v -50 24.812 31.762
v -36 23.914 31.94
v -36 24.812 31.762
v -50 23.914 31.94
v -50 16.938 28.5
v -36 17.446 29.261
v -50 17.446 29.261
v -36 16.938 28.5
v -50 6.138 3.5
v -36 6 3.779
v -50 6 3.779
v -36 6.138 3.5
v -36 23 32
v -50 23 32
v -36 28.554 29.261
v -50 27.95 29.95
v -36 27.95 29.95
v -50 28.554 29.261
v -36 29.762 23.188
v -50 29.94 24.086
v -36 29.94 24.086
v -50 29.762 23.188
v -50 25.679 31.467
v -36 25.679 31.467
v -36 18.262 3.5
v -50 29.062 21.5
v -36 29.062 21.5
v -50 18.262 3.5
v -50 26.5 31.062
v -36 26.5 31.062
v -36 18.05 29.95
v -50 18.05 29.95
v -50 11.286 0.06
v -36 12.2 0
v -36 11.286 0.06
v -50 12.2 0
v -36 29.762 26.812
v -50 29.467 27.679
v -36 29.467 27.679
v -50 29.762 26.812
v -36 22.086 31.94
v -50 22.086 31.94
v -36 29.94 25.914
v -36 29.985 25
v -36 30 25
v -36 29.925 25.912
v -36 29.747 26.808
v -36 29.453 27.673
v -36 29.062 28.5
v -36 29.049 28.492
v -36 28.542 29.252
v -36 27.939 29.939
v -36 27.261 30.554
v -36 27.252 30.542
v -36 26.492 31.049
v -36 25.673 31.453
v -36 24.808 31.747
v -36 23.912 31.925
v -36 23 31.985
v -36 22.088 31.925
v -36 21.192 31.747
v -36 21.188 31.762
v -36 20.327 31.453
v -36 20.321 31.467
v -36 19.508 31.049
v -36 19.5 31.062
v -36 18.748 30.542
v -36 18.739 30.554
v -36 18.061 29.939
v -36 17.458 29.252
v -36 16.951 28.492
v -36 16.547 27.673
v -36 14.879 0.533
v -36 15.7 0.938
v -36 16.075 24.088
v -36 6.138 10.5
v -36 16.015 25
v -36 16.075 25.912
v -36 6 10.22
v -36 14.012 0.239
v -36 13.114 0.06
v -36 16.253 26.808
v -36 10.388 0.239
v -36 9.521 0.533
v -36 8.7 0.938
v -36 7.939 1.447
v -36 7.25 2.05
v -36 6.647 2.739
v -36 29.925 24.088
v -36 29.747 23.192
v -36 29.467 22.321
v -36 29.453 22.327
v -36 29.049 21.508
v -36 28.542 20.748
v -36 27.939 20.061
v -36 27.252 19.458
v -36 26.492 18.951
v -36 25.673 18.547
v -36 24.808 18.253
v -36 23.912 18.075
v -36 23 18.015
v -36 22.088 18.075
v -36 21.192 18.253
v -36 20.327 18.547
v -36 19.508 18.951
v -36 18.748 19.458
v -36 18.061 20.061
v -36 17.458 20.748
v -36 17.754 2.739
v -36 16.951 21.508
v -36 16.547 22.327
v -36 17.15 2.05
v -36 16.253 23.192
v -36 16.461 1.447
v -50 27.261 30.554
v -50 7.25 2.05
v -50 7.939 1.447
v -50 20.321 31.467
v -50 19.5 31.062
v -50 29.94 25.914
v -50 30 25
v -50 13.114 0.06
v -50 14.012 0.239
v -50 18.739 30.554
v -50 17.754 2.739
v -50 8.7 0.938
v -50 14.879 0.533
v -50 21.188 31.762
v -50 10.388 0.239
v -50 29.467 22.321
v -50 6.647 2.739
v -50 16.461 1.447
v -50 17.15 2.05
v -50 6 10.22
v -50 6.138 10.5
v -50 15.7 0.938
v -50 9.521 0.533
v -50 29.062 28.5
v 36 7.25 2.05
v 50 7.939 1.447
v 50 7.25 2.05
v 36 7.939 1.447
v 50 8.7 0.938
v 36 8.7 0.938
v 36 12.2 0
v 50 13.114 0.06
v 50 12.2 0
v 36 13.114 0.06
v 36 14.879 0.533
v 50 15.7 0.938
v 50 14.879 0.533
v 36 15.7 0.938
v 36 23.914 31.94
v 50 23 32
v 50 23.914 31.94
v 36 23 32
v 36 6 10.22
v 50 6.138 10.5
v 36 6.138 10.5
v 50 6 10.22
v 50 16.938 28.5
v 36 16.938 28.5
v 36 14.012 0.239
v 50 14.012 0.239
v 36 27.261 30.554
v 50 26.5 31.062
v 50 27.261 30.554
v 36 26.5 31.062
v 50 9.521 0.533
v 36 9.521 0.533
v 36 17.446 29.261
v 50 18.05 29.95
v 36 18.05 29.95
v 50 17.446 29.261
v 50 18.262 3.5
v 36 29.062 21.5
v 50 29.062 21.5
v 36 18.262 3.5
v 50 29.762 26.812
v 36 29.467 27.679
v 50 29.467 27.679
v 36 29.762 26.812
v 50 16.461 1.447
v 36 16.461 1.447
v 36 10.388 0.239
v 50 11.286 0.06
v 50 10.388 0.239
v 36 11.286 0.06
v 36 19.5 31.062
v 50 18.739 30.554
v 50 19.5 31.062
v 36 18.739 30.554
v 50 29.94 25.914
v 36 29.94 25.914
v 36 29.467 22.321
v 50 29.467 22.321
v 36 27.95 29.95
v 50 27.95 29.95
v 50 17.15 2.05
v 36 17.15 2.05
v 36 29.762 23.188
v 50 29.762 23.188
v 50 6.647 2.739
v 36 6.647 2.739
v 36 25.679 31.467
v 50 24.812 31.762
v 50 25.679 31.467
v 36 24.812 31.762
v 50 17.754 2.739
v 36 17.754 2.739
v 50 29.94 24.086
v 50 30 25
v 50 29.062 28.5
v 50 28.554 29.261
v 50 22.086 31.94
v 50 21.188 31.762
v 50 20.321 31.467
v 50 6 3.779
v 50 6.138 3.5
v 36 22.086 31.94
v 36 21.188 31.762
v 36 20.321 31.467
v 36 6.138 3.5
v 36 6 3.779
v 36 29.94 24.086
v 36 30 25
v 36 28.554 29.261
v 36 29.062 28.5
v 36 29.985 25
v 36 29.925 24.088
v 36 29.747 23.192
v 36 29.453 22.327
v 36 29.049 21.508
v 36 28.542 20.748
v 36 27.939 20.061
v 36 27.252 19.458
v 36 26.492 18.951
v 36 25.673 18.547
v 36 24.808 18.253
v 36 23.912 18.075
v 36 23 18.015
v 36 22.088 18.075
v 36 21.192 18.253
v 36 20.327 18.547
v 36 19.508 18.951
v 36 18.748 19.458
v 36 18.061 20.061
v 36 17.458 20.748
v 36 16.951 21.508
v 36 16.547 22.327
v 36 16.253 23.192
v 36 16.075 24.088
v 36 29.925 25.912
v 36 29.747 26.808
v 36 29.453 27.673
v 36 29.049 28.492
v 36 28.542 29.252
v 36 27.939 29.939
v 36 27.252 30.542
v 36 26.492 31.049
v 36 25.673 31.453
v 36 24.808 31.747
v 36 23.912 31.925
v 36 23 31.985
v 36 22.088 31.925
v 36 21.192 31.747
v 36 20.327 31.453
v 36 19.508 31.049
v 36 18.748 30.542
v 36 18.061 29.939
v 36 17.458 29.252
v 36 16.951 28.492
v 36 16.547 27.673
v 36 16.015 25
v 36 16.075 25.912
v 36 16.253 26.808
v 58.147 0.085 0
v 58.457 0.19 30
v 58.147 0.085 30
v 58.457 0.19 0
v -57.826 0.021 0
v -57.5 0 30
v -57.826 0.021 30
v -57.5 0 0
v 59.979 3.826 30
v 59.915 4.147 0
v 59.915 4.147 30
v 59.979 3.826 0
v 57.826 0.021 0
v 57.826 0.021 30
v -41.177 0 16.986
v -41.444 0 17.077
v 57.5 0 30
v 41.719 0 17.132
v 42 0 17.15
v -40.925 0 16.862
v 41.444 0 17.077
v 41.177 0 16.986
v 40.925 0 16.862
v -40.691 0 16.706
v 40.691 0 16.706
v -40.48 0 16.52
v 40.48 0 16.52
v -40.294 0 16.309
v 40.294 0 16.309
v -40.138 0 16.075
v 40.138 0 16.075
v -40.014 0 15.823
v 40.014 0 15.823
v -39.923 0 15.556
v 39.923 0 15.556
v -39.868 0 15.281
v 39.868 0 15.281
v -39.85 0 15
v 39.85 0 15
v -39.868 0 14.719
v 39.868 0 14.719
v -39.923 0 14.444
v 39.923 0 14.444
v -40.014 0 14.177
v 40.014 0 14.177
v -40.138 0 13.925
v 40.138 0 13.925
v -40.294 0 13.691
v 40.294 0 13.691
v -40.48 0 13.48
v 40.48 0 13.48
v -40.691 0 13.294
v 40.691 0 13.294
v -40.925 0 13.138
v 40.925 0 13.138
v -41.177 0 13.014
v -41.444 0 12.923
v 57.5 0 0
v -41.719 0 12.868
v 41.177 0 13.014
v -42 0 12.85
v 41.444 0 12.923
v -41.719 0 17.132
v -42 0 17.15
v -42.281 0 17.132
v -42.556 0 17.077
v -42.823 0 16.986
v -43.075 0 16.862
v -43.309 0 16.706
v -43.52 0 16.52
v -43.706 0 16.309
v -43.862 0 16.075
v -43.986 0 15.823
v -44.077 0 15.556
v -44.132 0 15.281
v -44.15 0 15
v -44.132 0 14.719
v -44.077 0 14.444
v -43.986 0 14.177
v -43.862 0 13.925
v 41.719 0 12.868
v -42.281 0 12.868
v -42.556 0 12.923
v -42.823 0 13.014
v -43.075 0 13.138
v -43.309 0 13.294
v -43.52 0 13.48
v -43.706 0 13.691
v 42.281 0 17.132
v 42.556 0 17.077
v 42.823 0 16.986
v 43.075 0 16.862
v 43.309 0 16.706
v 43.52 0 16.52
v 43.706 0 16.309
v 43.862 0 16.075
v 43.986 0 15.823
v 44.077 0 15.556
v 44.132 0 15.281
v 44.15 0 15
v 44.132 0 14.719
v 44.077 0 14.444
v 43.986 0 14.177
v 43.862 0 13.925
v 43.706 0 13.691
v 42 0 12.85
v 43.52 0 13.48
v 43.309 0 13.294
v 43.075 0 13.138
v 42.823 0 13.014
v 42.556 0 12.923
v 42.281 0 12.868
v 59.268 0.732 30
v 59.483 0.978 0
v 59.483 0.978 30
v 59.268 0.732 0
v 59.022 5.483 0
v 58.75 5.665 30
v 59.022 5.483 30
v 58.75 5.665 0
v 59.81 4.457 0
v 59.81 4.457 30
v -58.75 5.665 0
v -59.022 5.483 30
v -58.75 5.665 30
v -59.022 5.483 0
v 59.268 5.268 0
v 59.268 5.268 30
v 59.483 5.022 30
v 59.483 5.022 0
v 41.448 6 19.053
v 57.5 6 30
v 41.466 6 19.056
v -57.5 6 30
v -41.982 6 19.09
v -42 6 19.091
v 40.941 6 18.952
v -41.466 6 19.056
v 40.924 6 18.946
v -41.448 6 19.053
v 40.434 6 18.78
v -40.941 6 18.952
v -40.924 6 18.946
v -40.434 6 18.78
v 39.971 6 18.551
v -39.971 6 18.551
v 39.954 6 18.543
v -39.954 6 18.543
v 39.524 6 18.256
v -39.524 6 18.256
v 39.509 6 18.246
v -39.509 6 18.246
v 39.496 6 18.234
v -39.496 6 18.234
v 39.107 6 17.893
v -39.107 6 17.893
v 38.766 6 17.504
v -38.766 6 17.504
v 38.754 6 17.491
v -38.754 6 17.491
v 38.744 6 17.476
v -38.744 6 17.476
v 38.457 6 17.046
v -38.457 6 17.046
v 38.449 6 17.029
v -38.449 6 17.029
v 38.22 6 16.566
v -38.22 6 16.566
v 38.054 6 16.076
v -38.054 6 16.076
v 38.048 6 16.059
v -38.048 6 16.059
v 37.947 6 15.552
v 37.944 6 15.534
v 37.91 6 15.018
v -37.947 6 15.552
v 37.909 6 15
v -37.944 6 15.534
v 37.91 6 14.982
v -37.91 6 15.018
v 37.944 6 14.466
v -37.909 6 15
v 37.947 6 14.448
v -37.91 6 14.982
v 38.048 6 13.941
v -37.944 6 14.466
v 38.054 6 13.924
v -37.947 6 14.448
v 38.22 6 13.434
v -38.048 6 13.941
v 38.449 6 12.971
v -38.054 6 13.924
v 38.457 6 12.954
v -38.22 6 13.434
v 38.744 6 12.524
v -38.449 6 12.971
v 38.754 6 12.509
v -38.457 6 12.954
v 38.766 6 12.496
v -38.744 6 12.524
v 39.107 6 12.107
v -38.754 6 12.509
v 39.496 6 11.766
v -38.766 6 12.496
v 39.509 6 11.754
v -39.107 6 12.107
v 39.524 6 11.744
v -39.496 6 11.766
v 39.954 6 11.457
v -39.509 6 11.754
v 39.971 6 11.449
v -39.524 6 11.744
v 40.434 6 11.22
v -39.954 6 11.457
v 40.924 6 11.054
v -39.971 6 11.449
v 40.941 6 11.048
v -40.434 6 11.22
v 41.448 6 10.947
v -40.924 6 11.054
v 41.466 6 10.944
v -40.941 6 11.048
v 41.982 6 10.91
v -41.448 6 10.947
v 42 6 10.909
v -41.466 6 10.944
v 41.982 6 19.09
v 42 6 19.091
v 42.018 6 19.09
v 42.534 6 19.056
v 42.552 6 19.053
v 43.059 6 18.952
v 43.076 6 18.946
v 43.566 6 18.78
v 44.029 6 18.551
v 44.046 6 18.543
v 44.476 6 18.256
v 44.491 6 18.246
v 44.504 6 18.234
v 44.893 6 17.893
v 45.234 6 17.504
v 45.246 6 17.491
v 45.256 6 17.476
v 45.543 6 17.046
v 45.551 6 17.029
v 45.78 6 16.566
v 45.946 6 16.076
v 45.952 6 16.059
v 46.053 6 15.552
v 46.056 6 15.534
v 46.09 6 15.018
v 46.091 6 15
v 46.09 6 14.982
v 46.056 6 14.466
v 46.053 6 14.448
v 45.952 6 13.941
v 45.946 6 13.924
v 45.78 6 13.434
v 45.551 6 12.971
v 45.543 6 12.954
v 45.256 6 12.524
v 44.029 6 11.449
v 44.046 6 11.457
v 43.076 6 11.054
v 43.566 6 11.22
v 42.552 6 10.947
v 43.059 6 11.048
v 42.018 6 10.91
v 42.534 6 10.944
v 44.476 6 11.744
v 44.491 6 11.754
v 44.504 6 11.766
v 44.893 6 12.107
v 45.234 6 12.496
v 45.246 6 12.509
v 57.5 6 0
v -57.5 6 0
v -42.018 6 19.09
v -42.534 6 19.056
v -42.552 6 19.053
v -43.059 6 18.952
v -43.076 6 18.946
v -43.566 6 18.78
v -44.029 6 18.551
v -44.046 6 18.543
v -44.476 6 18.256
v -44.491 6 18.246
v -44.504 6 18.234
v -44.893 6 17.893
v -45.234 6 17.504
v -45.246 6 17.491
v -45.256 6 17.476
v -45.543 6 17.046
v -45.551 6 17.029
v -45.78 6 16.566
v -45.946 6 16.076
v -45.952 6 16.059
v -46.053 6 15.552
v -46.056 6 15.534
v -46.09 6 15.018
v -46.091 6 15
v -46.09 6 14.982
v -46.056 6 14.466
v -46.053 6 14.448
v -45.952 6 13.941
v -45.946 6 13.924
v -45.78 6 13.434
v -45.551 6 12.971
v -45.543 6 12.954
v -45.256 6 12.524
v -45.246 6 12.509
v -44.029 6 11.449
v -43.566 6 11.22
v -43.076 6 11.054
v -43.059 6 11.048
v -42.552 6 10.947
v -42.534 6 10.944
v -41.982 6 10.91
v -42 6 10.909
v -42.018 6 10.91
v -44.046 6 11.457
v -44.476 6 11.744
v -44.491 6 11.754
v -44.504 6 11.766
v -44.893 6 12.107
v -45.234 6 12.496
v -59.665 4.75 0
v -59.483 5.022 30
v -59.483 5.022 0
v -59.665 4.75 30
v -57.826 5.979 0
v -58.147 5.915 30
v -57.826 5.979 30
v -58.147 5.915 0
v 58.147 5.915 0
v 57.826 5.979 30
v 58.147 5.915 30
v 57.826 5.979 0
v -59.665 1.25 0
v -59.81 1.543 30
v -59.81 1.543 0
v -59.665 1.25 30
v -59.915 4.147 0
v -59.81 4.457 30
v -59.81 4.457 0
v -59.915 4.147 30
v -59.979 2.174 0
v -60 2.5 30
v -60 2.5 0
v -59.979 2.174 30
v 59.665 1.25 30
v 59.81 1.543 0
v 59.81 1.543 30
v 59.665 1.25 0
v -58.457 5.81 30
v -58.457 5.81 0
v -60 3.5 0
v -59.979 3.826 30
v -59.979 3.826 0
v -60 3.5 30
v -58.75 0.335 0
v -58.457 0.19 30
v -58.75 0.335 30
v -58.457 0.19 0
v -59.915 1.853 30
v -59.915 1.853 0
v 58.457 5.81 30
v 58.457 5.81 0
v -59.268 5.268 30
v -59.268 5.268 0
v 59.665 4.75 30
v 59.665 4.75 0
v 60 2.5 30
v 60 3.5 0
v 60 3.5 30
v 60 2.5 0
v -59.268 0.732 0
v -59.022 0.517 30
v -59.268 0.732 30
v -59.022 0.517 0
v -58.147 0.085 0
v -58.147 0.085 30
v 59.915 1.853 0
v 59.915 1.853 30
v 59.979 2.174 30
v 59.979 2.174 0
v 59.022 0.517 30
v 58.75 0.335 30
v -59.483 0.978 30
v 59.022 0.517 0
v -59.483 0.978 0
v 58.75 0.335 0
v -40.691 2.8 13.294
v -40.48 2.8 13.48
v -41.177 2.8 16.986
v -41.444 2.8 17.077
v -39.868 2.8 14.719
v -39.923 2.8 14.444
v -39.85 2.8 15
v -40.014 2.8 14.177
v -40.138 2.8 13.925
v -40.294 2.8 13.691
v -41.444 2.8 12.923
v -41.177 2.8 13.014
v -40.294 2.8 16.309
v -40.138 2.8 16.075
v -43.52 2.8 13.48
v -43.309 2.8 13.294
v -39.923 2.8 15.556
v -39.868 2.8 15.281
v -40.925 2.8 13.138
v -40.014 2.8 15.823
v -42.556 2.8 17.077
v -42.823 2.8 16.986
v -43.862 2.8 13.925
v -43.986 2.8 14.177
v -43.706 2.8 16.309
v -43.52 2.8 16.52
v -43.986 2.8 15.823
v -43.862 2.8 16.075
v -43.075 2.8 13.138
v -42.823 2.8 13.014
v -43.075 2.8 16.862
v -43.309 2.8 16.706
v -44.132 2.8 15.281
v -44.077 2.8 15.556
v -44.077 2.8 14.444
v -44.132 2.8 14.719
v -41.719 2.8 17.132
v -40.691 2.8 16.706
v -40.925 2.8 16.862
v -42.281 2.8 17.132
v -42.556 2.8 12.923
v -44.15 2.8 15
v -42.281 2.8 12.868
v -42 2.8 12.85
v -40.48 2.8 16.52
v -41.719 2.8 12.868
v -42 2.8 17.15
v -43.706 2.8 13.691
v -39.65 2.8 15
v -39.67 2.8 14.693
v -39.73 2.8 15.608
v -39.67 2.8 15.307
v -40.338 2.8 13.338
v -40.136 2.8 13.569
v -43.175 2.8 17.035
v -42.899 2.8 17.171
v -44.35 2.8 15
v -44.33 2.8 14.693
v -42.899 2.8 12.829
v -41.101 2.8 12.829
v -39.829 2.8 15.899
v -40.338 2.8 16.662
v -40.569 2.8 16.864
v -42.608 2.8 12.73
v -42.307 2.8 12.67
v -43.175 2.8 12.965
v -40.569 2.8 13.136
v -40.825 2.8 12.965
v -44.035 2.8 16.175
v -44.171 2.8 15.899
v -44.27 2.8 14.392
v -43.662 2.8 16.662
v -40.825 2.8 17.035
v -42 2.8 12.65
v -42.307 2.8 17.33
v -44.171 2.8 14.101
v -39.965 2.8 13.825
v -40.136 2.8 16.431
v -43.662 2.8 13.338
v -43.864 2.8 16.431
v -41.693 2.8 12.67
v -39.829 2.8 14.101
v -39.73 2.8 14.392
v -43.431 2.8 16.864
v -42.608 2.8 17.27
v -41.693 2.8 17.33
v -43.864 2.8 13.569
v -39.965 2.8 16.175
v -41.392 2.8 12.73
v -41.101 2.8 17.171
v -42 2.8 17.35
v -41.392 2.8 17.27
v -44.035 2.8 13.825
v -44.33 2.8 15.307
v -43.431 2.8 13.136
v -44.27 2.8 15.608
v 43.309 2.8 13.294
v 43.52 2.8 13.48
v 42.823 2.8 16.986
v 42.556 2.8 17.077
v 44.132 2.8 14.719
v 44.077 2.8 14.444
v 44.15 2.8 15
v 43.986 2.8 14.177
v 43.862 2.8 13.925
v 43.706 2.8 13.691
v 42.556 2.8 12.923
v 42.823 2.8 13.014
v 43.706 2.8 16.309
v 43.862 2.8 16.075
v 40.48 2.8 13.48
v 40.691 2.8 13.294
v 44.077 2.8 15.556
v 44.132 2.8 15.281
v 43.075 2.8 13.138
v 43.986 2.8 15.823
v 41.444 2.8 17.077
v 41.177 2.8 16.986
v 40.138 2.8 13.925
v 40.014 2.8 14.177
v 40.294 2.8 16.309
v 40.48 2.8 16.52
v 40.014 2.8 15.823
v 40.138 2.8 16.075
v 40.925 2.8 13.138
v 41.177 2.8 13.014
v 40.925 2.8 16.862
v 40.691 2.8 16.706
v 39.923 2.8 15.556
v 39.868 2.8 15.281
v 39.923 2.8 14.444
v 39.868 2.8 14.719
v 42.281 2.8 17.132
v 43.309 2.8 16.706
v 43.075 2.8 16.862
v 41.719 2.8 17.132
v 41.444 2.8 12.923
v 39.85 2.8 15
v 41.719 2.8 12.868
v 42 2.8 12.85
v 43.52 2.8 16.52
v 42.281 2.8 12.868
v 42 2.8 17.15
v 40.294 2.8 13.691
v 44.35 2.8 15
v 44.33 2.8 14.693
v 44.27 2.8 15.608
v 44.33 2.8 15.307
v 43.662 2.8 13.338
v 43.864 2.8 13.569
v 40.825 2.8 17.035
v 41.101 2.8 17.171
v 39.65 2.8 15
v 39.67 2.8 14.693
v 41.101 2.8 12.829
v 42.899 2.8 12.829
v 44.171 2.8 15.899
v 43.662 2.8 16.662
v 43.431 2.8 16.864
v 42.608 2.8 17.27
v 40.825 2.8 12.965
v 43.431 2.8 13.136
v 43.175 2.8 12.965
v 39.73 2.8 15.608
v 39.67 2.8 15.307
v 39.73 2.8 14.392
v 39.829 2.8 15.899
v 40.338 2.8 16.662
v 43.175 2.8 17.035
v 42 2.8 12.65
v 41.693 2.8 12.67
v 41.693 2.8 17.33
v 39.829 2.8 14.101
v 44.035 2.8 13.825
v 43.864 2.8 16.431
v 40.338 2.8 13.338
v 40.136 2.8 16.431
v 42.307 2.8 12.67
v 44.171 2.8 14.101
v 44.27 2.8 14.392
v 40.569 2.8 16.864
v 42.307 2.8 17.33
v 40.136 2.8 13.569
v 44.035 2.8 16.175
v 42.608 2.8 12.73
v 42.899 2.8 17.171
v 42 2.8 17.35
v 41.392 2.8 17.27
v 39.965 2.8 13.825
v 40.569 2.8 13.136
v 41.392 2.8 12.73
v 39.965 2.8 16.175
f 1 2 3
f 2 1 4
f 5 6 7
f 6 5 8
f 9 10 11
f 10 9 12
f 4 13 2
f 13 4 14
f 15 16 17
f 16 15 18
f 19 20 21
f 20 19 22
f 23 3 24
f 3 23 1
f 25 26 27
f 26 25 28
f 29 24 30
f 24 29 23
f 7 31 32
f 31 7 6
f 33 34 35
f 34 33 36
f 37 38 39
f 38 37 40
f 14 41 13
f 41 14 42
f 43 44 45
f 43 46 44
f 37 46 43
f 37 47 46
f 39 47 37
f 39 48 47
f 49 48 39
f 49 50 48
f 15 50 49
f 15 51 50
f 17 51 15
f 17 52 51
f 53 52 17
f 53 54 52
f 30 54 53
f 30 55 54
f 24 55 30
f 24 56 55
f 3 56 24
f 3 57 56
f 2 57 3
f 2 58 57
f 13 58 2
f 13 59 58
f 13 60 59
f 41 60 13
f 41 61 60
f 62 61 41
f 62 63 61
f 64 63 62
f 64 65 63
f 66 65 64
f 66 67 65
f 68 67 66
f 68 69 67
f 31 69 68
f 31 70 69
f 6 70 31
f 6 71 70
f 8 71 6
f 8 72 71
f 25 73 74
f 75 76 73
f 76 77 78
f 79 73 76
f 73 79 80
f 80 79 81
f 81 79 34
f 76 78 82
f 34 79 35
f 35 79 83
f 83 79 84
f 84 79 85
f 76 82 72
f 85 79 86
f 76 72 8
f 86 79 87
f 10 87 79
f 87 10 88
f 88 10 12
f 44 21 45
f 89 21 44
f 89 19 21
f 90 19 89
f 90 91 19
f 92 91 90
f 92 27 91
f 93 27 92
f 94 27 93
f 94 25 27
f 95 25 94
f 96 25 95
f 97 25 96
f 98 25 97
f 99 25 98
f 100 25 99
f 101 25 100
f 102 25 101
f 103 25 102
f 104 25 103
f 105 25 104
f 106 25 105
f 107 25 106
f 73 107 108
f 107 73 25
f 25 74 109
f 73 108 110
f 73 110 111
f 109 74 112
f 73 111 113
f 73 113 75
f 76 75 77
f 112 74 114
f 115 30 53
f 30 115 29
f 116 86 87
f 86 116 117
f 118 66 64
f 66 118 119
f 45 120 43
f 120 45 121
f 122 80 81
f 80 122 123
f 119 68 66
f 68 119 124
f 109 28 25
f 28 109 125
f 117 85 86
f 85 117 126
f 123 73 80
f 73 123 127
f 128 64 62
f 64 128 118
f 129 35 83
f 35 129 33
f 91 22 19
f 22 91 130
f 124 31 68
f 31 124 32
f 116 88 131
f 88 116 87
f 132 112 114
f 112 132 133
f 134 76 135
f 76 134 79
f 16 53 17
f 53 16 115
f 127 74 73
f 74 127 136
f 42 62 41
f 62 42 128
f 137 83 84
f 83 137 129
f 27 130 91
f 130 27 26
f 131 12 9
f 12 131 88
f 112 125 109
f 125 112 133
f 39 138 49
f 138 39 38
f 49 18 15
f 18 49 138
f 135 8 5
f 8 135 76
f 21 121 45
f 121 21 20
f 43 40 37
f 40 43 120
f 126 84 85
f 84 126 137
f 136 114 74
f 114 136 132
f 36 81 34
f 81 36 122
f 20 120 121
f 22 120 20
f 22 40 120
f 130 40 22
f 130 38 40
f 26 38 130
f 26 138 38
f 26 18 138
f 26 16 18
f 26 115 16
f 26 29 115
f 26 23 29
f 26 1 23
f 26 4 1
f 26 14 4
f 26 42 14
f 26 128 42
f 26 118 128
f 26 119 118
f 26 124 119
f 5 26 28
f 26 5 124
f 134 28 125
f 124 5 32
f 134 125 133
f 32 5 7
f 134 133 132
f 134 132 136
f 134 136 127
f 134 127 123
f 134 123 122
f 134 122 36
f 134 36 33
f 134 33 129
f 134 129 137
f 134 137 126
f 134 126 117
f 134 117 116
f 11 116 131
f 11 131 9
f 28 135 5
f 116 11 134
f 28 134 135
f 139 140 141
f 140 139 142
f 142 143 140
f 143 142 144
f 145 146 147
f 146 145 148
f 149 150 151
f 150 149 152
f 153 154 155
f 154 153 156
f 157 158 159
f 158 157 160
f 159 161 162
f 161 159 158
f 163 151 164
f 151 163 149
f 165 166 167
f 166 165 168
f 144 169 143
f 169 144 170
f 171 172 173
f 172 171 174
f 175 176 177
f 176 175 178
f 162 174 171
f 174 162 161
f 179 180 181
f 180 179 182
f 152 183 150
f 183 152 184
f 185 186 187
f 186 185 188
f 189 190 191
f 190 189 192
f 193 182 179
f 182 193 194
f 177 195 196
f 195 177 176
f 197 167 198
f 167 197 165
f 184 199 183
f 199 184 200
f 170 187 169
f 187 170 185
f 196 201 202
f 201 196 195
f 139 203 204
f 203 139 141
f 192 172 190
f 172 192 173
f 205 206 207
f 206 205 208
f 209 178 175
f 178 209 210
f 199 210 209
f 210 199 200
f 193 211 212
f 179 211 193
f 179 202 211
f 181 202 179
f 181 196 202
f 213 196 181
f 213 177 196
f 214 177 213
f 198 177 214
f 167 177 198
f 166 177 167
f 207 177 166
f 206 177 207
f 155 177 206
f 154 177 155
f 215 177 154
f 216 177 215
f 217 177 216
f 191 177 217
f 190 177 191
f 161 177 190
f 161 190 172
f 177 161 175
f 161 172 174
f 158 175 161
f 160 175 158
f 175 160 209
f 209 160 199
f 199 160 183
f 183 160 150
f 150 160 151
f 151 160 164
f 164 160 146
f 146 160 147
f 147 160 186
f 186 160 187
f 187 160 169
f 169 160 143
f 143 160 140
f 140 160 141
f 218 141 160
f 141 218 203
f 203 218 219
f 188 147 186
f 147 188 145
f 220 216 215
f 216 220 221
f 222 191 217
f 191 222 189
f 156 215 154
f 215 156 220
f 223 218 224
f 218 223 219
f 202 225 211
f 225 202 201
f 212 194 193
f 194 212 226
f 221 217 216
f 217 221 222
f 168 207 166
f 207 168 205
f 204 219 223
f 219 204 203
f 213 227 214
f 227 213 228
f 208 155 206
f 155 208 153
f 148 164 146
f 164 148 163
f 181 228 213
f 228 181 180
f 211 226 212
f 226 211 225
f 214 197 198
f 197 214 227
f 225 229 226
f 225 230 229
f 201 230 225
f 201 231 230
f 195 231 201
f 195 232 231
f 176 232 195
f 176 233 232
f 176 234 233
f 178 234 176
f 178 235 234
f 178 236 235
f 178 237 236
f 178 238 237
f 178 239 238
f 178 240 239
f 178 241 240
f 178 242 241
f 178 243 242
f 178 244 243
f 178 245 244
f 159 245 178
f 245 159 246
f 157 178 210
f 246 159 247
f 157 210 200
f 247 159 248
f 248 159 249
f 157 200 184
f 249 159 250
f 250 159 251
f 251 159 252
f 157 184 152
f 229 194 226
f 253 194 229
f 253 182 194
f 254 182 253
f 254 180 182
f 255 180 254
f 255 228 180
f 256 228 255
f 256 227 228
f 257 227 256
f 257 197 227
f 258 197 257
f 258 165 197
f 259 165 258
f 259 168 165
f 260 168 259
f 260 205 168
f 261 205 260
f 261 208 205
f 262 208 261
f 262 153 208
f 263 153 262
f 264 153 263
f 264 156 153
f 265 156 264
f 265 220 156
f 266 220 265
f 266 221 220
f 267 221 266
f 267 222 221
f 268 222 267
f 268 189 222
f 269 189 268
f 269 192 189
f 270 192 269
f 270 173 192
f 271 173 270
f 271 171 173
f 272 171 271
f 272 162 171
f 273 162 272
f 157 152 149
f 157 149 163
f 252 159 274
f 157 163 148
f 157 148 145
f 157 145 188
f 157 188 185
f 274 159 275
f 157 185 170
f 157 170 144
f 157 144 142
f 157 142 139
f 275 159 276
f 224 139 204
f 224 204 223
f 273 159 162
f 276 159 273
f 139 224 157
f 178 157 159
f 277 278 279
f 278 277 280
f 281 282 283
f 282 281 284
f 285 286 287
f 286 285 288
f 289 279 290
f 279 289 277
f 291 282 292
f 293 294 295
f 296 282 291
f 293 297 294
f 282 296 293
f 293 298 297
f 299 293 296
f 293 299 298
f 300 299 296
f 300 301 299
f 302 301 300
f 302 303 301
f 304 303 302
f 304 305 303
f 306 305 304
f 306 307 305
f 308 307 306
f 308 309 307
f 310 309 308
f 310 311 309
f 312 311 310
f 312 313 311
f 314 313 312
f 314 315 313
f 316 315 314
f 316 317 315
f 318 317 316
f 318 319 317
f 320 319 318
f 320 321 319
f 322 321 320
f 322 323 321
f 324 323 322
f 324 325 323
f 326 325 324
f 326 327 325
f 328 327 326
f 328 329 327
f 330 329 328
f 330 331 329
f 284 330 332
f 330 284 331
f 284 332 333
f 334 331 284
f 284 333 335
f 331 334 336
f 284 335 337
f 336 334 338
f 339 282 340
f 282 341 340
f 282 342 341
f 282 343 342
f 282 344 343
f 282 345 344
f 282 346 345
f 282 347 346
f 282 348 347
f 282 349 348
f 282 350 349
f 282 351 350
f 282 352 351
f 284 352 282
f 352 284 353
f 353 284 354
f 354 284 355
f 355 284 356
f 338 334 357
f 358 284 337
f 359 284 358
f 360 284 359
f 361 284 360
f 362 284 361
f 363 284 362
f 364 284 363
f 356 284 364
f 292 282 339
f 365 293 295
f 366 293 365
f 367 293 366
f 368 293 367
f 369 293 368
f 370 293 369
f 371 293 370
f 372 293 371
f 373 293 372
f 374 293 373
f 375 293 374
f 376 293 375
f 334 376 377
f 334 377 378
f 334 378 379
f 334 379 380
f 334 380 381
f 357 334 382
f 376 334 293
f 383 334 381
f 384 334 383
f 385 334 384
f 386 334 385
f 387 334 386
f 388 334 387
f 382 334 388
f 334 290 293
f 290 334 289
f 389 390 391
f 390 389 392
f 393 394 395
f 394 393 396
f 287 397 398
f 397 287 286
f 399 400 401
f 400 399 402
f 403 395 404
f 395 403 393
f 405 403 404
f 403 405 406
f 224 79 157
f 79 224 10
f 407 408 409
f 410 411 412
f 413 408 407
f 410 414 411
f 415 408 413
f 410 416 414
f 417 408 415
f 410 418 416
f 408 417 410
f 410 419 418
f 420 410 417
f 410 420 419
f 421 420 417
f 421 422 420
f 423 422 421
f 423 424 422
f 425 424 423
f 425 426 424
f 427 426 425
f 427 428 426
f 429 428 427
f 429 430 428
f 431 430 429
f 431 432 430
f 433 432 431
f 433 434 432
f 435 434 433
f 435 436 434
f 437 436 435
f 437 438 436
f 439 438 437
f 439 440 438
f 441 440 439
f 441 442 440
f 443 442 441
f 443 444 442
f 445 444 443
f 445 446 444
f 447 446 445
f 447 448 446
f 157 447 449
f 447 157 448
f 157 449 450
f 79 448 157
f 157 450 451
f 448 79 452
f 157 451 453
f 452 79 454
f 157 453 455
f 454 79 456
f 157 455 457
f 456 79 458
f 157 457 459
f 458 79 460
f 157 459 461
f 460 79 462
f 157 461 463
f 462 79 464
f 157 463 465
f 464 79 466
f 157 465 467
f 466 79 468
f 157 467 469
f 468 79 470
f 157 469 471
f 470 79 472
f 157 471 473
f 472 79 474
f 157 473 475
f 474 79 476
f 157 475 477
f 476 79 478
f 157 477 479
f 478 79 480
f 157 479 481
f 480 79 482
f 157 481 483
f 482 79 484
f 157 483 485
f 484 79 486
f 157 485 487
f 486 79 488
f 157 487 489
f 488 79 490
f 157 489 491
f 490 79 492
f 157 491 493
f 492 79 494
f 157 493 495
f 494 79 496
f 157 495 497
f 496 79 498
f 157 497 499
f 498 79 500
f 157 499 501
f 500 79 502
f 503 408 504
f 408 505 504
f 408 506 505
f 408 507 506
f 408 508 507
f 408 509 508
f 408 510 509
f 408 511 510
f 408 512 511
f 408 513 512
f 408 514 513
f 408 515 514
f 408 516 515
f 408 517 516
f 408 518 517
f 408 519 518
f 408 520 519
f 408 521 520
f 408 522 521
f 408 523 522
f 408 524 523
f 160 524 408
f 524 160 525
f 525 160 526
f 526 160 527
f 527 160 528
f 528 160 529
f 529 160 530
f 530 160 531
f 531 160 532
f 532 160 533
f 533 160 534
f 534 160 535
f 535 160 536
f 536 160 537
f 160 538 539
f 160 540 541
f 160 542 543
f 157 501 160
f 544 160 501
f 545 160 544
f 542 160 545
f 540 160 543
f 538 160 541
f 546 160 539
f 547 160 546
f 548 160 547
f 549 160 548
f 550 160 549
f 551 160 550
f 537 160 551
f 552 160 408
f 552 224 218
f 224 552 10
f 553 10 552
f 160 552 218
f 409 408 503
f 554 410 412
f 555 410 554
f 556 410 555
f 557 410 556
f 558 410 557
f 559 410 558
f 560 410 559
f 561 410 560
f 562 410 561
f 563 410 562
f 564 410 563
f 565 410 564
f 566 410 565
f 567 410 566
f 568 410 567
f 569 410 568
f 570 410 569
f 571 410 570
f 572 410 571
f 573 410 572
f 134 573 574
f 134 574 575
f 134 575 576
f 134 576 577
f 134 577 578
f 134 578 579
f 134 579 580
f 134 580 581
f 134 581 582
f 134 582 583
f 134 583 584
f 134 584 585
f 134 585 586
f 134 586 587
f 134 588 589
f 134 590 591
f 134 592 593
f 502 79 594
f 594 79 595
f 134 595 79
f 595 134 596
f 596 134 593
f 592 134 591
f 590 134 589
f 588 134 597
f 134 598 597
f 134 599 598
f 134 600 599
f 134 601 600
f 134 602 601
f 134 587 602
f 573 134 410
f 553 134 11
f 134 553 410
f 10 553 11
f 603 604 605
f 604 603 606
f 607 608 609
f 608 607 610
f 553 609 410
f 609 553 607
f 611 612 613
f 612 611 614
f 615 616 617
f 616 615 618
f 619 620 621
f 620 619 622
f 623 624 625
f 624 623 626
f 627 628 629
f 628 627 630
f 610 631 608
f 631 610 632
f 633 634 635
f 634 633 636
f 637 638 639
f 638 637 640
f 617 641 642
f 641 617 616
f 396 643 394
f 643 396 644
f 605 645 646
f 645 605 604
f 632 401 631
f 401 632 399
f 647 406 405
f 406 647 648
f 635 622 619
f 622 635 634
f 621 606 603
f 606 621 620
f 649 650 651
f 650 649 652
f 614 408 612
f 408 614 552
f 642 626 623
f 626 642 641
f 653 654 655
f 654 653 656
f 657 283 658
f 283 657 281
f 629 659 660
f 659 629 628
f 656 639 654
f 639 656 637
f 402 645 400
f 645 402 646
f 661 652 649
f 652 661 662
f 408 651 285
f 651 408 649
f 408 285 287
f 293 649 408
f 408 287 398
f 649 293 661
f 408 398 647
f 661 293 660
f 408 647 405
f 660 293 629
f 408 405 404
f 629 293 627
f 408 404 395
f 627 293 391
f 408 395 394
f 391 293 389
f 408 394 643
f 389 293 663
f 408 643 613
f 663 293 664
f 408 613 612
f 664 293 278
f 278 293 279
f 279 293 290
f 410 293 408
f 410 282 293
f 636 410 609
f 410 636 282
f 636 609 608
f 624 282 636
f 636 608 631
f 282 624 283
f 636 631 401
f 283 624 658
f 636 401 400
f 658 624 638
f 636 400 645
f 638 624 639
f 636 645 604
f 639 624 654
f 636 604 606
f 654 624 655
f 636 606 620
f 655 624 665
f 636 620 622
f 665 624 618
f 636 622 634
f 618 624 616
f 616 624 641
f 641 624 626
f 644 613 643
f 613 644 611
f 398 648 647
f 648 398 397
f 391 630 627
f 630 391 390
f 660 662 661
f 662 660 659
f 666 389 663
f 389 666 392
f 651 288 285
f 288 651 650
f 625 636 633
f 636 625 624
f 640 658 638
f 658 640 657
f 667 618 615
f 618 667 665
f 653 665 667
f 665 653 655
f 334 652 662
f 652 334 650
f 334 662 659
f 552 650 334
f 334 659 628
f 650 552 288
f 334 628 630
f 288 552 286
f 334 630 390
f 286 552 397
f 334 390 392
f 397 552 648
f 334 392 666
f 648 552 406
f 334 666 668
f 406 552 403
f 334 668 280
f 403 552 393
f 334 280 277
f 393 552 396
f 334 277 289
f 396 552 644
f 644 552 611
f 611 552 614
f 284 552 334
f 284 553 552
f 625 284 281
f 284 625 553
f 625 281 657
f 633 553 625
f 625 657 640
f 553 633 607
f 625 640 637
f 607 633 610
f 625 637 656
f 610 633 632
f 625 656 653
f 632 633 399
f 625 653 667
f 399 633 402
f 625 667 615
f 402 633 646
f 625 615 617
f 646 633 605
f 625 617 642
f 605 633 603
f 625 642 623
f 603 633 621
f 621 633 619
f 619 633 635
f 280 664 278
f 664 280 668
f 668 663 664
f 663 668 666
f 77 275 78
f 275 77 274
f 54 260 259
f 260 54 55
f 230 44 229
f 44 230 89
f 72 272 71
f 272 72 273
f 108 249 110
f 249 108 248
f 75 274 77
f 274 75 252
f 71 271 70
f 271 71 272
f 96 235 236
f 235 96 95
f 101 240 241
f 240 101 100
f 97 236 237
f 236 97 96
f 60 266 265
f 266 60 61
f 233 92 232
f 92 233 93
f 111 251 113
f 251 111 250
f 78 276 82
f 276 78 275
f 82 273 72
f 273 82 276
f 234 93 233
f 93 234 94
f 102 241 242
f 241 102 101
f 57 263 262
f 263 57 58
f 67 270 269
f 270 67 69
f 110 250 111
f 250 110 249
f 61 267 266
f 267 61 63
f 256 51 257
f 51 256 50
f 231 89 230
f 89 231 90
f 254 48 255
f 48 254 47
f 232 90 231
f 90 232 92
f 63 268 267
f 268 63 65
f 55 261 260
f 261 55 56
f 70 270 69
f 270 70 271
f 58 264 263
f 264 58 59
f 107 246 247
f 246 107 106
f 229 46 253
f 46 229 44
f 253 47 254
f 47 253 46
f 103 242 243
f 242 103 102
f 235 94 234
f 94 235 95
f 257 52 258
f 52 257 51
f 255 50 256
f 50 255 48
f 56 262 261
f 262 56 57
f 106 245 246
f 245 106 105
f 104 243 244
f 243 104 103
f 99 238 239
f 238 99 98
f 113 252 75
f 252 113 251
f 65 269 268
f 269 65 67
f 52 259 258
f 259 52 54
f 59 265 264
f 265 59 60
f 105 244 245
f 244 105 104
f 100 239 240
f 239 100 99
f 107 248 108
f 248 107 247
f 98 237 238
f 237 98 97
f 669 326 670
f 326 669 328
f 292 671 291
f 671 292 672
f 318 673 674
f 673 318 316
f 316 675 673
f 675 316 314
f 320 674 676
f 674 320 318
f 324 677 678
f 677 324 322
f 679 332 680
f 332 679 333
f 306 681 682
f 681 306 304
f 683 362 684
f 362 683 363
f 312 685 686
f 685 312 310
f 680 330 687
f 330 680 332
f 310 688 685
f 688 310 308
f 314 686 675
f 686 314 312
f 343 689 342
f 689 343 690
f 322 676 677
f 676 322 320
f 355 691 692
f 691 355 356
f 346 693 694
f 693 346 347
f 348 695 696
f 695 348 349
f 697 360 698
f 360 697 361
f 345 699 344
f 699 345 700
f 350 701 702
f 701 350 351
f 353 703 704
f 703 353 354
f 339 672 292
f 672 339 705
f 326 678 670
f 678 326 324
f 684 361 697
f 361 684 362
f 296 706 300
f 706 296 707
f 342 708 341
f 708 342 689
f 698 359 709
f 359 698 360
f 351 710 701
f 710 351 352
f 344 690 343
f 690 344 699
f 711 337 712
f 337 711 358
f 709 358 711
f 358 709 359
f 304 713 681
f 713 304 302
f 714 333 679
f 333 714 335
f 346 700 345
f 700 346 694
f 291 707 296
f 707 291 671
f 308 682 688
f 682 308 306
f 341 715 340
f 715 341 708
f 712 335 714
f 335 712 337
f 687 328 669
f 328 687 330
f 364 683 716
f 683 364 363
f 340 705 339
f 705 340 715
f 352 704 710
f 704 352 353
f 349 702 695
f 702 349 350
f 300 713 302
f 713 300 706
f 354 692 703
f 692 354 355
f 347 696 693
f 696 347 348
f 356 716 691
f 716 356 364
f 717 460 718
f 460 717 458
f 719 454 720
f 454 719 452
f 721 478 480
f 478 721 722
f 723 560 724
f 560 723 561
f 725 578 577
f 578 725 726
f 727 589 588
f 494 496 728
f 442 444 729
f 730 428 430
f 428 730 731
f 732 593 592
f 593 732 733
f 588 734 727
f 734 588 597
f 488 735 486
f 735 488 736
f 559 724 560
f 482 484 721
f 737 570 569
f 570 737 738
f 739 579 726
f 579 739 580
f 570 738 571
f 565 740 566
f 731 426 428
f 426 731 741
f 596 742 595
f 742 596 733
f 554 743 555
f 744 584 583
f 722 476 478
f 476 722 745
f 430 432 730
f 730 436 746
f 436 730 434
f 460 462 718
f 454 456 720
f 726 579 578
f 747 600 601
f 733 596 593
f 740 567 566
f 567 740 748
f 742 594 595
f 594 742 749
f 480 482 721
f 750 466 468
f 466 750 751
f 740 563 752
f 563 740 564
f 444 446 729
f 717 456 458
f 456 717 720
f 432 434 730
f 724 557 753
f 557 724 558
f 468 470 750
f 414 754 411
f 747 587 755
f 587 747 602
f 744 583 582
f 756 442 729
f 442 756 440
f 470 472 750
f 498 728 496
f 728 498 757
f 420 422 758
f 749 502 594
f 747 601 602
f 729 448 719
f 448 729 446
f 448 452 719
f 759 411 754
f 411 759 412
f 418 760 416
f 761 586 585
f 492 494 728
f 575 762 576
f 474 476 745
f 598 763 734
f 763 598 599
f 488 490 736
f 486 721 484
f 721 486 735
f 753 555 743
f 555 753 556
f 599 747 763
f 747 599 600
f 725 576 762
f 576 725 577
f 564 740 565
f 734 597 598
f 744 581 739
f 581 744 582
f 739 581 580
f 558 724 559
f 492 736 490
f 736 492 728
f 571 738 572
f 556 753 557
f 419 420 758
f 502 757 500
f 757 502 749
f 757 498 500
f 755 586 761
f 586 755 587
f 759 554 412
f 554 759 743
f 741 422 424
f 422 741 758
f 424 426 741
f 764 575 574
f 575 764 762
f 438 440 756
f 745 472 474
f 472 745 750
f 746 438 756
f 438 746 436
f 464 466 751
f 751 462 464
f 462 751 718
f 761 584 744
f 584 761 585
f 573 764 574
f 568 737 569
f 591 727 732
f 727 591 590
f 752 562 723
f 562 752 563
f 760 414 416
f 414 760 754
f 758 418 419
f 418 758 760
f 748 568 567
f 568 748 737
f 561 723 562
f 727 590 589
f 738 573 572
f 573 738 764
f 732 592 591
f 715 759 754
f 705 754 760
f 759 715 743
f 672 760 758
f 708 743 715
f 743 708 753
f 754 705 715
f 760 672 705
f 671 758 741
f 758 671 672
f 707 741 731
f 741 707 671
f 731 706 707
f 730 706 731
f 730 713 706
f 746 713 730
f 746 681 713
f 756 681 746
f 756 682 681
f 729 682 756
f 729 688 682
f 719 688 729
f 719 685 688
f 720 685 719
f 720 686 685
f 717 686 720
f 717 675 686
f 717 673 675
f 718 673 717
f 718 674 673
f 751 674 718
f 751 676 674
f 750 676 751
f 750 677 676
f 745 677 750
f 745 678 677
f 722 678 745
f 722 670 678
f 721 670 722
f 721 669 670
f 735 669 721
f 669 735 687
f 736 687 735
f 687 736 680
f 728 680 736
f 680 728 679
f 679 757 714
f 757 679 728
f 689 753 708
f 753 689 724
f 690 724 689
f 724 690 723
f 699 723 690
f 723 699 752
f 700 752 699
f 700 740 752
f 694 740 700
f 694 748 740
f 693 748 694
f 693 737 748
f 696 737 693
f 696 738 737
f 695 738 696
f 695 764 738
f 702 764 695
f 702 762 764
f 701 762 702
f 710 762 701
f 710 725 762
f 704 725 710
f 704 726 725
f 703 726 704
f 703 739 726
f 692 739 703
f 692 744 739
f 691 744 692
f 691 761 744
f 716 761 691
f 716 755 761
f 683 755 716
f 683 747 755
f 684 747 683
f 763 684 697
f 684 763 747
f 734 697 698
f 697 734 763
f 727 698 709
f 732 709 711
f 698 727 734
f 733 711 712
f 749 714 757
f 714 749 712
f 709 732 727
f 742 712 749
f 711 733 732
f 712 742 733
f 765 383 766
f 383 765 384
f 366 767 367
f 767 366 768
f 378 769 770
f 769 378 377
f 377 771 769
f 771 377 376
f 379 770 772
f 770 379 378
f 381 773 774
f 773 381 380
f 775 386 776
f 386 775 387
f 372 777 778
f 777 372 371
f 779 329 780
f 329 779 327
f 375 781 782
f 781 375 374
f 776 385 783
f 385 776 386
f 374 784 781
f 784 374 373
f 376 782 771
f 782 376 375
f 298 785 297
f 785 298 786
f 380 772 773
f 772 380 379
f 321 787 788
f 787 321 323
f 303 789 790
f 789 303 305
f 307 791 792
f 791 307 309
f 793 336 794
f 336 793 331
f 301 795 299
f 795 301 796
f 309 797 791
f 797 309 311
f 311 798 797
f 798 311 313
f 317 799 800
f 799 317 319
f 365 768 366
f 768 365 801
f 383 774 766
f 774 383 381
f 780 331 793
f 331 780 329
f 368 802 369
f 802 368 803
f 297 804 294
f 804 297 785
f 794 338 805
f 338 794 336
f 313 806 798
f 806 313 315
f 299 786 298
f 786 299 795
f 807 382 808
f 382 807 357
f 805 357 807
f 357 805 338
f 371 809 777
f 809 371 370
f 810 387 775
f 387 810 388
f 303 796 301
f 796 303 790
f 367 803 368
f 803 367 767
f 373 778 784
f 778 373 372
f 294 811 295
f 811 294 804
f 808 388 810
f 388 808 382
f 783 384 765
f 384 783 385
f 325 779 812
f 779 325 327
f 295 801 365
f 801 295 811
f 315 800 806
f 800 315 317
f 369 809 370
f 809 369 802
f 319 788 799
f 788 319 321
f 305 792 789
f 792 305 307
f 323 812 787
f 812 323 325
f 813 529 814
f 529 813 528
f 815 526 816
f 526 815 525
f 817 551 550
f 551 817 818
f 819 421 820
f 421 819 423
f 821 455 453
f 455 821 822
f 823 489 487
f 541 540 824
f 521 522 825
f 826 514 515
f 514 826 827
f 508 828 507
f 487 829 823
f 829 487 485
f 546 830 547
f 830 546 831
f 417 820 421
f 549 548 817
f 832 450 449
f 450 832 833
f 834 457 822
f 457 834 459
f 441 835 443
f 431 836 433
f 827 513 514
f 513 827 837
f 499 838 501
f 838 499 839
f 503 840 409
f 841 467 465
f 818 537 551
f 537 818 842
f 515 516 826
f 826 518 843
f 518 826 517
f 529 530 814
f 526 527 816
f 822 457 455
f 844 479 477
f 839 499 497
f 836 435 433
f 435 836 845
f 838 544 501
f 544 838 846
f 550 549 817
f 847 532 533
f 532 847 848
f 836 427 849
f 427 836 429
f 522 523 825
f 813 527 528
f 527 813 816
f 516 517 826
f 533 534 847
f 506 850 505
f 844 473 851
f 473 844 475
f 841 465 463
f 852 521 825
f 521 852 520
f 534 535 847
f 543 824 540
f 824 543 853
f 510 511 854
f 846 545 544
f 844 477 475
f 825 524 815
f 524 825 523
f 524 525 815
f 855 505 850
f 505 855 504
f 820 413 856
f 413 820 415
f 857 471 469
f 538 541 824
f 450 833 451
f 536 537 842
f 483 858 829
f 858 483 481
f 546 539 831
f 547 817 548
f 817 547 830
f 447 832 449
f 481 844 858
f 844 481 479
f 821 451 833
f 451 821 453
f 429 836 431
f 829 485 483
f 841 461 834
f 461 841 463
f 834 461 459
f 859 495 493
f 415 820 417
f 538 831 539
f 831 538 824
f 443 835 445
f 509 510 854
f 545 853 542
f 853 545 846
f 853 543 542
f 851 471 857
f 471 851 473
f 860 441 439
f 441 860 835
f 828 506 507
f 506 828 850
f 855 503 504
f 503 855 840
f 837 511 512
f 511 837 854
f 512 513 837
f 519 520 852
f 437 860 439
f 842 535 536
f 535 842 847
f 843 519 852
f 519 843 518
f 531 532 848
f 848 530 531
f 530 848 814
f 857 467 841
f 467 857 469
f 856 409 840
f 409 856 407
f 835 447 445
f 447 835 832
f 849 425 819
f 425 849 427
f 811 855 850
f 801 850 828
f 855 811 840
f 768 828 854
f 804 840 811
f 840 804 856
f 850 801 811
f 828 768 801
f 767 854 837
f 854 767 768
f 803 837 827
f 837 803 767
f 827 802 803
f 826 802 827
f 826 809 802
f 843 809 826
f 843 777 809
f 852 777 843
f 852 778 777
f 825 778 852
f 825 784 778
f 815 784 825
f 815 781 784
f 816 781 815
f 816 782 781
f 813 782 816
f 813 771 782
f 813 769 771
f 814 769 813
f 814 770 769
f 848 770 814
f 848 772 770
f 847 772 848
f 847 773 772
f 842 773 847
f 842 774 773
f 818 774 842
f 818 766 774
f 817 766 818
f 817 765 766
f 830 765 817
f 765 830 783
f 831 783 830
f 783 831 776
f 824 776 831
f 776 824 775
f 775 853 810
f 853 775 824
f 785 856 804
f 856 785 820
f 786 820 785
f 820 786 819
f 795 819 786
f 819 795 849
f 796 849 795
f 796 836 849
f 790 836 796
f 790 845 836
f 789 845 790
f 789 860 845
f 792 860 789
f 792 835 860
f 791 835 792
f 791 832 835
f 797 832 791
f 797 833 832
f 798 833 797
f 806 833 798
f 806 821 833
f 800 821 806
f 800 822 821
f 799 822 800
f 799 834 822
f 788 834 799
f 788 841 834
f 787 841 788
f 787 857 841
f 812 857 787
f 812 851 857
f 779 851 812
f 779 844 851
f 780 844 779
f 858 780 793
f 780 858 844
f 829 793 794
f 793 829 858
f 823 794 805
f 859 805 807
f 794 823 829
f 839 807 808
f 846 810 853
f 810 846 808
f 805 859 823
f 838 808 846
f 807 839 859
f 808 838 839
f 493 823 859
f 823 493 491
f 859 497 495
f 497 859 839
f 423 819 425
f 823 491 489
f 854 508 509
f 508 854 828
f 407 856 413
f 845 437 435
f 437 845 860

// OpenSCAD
box_width = 220;
box_height = 70;

handle_width = 120;
handle_height = 30;
plate_thickness = 6;
plate_corner_radius = 2.5;

grip_width = 100;
grip_thickness = 14;
grip_projection = 24;
grip_clearance = 18;

side_support_width = 14;
side_support_depth = grip_projection;
support_blend_radius = 7;

screw_hole_diameter = 4.3;
screw_head_diameter = 8.4;
screw_head_depth = 3.2;
screw_spacing = 84;
add_screw_holes = true;

box_front_thickness = 12;
m4_screw_length = 20;
m4_shaft_diameter = 4.0;
m4_head_diameter = screw_head_diameter;
m4_head_height = 2.5;
show_m4_screws = true;

show_preview = false;

$fn = 48;

echo("Handle print size (mm):", [handle_width, plate_thickness + grip_projection, handle_height]);
echo("Screw spacing (mm):", screw_spacing);
echo("Default fastener:", str("M4 x ", m4_screw_length, " mm countersunk screw"));

module rounded_plate(width, depth, height, radius) {
    linear_extrude(height = height)
        offset(r = radius)
            offset(delta = -radius)
                square([width, depth], center = true);
}

module rounded_bar(length, diameter) {
    rotate([0, 90, 0])
        hull() {
            translate([0, 0, -length / 2 + diameter / 2])
                sphere(d = diameter);
            translate([0, 0, length / 2 - diameter / 2])
                sphere(d = diameter);
        }
}

module m4_countersunk_screw(length) {
    union() {
        cylinder(h = length, d = m4_shaft_diameter);

        translate([0, 0, -m4_head_height])
            cylinder(h = m4_head_height, d1 = m4_head_diameter, d2 = m4_shaft_diameter);
    }
}

module mounting_holes() {
    for (x_pos = [-screw_spacing / 2, screw_spacing / 2]) {
        translate([x_pos, 0, 0]) {
            cylinder(h = plate_thickness + 0.2, d = screw_hole_diameter);

            translate([0, 0, plate_thickness - screw_head_depth])
                cylinder(h = screw_head_depth + 0.2, d1 = screw_hole_diameter + 0.4, d2 = screw_head_diameter);
        }
    }
}

module side_support(x_center) {
    hull() {
        translate([x_center, plate_thickness + support_blend_radius - 0.8, support_blend_radius])
            rotate([0, 90, 0])
                cylinder(h = side_support_width, r = support_blend_radius, center = true);

        translate([x_center, plate_thickness + side_support_depth - (grip_thickness / 2), grip_clearance + (grip_thickness / 2)])
            rotate([0, 90, 0])
                cylinder(h = side_support_width, r = grip_thickness / 2, center = true);
    }
}

module handle_body() {
    difference() {
        union() {
            translate([0, plate_thickness / 2, 0])
                rounded_plate(handle_width, plate_thickness, handle_height, plate_corner_radius);

            for (x_pos = [-grip_width / 2 + side_support_width / 2, grip_width / 2 - side_support_width / 2]) {
                side_support(x_pos);
            }

            translate([0, plate_thickness + grip_projection - (grip_thickness / 2), grip_clearance + (grip_thickness / 2)])
                rounded_bar(grip_width, grip_thickness);
        }

        if (add_screw_holes) {
            translate([0, 0, handle_height / 2])
                rotate([-90, 0, 0])
                    mounting_holes();
        }
    }
}

module preview() {
    color([0.82, 0.69, 0.47])
        translate([-box_width / 2, -box_front_thickness, -box_height / 2])
            cube([box_width, box_front_thickness, box_height]);

    color([0.08, 0.08, 0.08])
        translate([0, 0, -handle_height / 2 + box_height / 2])
            handle_body();

    if (show_m4_screws) {
        color([0.72, 0.74, 0.76])
            translate([0, 0, -handle_height / 2 + box_height / 2])
                for (x_pos = [-screw_spacing / 2, screw_spacing / 2]) {
                    translate([x_pos, 0, handle_height / 2])
                        rotate([-90, 0, 0])
                            m4_countersunk_screw(m4_screw_length);
                }
    }
}

if (show_preview) {
    preview();
} else {
    handle_body();
}
